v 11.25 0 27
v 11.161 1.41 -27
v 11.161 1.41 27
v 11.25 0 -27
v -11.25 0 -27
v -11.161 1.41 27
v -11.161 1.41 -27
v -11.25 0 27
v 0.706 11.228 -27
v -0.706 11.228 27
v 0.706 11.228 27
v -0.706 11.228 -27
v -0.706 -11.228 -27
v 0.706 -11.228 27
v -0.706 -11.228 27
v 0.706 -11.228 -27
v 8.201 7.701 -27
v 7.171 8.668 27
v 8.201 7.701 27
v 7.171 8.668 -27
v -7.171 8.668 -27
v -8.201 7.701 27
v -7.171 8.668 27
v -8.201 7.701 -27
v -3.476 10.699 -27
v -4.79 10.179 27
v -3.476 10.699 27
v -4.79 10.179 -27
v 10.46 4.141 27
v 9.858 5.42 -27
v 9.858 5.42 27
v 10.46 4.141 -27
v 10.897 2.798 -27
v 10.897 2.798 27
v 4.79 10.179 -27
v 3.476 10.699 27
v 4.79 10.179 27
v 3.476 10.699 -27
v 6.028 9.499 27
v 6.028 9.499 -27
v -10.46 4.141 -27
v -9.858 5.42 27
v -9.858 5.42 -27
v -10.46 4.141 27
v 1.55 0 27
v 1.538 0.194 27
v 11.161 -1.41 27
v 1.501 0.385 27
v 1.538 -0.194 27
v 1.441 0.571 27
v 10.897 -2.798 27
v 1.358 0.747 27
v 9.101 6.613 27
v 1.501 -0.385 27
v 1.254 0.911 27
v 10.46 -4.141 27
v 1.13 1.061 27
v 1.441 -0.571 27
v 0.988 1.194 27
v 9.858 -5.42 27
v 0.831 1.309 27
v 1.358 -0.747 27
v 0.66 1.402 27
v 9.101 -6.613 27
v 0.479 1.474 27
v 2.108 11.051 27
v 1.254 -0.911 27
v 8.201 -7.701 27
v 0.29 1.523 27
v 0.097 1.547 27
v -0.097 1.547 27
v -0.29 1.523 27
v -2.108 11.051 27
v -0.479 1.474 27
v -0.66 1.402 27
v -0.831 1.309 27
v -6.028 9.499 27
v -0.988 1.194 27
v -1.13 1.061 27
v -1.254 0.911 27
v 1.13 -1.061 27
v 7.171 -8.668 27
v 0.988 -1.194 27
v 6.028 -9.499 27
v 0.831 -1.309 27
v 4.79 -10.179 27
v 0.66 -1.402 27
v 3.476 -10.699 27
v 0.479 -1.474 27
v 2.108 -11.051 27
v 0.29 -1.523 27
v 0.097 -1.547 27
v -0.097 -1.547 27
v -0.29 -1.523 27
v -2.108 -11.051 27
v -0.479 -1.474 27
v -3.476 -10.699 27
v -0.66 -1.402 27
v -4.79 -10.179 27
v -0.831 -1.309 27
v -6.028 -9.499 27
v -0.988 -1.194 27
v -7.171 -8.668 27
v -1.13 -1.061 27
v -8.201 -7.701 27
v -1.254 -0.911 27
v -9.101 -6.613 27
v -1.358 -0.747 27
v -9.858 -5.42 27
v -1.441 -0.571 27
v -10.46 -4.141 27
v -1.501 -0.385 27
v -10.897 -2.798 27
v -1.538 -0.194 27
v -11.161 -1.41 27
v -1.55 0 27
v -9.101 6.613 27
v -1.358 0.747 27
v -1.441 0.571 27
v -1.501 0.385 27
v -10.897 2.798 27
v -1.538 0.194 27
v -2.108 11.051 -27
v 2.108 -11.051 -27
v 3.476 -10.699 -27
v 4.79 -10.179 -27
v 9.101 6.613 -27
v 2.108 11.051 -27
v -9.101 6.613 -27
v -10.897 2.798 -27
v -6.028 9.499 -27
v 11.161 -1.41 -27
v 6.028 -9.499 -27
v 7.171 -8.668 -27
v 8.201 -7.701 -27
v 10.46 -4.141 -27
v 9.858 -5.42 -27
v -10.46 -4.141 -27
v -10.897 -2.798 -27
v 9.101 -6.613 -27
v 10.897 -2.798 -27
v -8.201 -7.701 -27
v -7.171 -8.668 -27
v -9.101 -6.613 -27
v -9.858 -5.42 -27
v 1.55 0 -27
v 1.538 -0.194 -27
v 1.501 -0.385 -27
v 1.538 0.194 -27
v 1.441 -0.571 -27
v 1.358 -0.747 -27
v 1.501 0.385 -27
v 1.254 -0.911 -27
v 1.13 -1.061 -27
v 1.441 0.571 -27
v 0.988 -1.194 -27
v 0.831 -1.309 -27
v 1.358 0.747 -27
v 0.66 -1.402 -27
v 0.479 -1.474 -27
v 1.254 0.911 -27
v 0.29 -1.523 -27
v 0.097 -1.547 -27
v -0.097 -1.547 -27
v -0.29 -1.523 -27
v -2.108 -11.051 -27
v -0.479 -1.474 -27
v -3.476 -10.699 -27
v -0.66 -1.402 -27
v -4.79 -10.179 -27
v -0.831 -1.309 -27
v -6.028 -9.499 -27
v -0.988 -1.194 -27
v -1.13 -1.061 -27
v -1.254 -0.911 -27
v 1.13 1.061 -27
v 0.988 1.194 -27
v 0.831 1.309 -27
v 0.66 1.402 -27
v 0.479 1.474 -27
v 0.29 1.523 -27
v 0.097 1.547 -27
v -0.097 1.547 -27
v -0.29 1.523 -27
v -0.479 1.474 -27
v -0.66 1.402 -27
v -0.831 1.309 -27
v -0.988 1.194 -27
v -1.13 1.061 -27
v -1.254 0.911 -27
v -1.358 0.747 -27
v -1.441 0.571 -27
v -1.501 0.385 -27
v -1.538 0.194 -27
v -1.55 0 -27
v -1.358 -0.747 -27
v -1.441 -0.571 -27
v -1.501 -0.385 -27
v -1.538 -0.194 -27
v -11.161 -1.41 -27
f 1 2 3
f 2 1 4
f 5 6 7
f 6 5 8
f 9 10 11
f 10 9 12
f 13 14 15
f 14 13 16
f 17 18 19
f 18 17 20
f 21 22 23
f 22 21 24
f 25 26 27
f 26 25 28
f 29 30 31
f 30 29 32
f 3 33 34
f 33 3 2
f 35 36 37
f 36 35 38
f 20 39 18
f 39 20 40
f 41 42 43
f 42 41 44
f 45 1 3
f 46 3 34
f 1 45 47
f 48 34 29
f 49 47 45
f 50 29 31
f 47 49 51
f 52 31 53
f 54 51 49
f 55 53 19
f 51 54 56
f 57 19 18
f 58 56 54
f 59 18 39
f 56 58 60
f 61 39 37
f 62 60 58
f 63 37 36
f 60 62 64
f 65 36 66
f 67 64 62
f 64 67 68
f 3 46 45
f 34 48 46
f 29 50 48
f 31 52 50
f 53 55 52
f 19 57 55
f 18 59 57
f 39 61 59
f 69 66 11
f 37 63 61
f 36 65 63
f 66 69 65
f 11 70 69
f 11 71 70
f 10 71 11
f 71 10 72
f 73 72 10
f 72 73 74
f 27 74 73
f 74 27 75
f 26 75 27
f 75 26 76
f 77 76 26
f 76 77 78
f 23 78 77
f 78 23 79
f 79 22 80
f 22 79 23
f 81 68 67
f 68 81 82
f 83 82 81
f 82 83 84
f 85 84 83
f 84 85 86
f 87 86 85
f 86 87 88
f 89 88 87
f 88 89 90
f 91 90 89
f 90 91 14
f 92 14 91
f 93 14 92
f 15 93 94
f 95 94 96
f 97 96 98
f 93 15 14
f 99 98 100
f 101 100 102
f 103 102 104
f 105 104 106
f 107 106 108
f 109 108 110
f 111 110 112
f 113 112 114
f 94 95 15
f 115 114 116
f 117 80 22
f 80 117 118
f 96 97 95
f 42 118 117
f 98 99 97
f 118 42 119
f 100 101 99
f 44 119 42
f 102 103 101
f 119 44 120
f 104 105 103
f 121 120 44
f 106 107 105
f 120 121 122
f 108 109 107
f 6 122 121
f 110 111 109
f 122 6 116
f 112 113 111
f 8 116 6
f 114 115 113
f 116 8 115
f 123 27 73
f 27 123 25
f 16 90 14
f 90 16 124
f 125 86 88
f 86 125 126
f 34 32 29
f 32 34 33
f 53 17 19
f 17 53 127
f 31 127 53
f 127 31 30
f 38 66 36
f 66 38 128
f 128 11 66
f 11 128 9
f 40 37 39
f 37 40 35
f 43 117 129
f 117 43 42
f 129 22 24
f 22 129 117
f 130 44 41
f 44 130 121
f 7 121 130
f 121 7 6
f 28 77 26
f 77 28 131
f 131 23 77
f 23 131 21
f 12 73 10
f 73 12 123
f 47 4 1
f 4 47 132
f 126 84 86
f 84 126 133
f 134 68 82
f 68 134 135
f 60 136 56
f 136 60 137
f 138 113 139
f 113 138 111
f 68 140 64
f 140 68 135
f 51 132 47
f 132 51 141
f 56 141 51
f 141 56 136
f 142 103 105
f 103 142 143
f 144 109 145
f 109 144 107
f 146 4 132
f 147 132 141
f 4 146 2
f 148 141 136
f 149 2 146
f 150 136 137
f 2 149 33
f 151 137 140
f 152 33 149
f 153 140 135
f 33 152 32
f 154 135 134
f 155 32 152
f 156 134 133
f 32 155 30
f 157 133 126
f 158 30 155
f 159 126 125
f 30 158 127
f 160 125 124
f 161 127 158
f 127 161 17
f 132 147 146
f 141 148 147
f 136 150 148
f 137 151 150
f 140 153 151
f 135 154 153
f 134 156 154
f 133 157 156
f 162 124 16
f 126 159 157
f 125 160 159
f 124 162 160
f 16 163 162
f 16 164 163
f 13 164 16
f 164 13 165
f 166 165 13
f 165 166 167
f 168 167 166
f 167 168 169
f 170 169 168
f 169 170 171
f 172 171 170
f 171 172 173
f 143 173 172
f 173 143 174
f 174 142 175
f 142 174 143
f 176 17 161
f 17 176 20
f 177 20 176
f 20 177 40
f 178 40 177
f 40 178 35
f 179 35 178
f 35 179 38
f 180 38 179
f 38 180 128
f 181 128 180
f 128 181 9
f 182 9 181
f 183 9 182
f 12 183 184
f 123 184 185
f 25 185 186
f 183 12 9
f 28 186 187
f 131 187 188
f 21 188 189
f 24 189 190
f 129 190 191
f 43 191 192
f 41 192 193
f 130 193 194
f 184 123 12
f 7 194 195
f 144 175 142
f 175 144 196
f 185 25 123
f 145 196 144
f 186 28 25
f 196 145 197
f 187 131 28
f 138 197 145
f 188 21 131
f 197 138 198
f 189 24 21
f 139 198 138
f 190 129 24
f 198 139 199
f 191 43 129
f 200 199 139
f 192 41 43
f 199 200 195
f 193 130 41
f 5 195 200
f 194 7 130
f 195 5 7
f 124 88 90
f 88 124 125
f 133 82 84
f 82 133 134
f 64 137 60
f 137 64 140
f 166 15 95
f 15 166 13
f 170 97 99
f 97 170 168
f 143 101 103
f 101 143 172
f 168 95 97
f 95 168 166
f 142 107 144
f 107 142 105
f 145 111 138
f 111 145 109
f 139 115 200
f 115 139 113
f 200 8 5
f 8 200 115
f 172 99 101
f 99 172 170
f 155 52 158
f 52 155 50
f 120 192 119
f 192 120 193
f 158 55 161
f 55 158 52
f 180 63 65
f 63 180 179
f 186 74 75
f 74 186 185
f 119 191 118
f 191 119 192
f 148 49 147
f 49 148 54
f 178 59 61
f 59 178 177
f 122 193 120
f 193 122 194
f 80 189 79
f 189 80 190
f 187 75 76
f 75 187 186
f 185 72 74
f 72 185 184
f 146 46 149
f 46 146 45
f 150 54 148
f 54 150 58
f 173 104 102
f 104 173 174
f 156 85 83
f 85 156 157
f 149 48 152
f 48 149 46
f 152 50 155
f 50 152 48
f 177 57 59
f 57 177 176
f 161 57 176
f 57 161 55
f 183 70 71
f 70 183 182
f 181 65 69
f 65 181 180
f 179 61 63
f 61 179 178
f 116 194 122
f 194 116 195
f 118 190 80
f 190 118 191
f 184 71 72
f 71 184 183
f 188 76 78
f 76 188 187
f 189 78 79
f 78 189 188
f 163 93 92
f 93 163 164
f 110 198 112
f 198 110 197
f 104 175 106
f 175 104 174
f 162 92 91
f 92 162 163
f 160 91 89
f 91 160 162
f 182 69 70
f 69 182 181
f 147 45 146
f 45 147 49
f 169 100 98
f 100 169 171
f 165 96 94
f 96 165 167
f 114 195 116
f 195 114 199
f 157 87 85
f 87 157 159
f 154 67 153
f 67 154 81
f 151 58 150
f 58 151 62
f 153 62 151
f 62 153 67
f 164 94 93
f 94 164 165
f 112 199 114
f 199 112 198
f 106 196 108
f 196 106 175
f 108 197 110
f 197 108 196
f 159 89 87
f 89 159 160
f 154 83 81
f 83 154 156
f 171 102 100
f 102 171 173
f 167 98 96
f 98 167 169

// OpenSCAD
$fn = 50;


difference() {
	union() {
		translate(v = [0, 0, -27.0000000000]) {
			cylinder(h = 54, r = 11.2500000000);
		}
	}
	union() {
		translate(v = [0, 0, -100.0000000000]) {
			cylinder(h = 200, r = 1.5500000000);
		}
	}
}
